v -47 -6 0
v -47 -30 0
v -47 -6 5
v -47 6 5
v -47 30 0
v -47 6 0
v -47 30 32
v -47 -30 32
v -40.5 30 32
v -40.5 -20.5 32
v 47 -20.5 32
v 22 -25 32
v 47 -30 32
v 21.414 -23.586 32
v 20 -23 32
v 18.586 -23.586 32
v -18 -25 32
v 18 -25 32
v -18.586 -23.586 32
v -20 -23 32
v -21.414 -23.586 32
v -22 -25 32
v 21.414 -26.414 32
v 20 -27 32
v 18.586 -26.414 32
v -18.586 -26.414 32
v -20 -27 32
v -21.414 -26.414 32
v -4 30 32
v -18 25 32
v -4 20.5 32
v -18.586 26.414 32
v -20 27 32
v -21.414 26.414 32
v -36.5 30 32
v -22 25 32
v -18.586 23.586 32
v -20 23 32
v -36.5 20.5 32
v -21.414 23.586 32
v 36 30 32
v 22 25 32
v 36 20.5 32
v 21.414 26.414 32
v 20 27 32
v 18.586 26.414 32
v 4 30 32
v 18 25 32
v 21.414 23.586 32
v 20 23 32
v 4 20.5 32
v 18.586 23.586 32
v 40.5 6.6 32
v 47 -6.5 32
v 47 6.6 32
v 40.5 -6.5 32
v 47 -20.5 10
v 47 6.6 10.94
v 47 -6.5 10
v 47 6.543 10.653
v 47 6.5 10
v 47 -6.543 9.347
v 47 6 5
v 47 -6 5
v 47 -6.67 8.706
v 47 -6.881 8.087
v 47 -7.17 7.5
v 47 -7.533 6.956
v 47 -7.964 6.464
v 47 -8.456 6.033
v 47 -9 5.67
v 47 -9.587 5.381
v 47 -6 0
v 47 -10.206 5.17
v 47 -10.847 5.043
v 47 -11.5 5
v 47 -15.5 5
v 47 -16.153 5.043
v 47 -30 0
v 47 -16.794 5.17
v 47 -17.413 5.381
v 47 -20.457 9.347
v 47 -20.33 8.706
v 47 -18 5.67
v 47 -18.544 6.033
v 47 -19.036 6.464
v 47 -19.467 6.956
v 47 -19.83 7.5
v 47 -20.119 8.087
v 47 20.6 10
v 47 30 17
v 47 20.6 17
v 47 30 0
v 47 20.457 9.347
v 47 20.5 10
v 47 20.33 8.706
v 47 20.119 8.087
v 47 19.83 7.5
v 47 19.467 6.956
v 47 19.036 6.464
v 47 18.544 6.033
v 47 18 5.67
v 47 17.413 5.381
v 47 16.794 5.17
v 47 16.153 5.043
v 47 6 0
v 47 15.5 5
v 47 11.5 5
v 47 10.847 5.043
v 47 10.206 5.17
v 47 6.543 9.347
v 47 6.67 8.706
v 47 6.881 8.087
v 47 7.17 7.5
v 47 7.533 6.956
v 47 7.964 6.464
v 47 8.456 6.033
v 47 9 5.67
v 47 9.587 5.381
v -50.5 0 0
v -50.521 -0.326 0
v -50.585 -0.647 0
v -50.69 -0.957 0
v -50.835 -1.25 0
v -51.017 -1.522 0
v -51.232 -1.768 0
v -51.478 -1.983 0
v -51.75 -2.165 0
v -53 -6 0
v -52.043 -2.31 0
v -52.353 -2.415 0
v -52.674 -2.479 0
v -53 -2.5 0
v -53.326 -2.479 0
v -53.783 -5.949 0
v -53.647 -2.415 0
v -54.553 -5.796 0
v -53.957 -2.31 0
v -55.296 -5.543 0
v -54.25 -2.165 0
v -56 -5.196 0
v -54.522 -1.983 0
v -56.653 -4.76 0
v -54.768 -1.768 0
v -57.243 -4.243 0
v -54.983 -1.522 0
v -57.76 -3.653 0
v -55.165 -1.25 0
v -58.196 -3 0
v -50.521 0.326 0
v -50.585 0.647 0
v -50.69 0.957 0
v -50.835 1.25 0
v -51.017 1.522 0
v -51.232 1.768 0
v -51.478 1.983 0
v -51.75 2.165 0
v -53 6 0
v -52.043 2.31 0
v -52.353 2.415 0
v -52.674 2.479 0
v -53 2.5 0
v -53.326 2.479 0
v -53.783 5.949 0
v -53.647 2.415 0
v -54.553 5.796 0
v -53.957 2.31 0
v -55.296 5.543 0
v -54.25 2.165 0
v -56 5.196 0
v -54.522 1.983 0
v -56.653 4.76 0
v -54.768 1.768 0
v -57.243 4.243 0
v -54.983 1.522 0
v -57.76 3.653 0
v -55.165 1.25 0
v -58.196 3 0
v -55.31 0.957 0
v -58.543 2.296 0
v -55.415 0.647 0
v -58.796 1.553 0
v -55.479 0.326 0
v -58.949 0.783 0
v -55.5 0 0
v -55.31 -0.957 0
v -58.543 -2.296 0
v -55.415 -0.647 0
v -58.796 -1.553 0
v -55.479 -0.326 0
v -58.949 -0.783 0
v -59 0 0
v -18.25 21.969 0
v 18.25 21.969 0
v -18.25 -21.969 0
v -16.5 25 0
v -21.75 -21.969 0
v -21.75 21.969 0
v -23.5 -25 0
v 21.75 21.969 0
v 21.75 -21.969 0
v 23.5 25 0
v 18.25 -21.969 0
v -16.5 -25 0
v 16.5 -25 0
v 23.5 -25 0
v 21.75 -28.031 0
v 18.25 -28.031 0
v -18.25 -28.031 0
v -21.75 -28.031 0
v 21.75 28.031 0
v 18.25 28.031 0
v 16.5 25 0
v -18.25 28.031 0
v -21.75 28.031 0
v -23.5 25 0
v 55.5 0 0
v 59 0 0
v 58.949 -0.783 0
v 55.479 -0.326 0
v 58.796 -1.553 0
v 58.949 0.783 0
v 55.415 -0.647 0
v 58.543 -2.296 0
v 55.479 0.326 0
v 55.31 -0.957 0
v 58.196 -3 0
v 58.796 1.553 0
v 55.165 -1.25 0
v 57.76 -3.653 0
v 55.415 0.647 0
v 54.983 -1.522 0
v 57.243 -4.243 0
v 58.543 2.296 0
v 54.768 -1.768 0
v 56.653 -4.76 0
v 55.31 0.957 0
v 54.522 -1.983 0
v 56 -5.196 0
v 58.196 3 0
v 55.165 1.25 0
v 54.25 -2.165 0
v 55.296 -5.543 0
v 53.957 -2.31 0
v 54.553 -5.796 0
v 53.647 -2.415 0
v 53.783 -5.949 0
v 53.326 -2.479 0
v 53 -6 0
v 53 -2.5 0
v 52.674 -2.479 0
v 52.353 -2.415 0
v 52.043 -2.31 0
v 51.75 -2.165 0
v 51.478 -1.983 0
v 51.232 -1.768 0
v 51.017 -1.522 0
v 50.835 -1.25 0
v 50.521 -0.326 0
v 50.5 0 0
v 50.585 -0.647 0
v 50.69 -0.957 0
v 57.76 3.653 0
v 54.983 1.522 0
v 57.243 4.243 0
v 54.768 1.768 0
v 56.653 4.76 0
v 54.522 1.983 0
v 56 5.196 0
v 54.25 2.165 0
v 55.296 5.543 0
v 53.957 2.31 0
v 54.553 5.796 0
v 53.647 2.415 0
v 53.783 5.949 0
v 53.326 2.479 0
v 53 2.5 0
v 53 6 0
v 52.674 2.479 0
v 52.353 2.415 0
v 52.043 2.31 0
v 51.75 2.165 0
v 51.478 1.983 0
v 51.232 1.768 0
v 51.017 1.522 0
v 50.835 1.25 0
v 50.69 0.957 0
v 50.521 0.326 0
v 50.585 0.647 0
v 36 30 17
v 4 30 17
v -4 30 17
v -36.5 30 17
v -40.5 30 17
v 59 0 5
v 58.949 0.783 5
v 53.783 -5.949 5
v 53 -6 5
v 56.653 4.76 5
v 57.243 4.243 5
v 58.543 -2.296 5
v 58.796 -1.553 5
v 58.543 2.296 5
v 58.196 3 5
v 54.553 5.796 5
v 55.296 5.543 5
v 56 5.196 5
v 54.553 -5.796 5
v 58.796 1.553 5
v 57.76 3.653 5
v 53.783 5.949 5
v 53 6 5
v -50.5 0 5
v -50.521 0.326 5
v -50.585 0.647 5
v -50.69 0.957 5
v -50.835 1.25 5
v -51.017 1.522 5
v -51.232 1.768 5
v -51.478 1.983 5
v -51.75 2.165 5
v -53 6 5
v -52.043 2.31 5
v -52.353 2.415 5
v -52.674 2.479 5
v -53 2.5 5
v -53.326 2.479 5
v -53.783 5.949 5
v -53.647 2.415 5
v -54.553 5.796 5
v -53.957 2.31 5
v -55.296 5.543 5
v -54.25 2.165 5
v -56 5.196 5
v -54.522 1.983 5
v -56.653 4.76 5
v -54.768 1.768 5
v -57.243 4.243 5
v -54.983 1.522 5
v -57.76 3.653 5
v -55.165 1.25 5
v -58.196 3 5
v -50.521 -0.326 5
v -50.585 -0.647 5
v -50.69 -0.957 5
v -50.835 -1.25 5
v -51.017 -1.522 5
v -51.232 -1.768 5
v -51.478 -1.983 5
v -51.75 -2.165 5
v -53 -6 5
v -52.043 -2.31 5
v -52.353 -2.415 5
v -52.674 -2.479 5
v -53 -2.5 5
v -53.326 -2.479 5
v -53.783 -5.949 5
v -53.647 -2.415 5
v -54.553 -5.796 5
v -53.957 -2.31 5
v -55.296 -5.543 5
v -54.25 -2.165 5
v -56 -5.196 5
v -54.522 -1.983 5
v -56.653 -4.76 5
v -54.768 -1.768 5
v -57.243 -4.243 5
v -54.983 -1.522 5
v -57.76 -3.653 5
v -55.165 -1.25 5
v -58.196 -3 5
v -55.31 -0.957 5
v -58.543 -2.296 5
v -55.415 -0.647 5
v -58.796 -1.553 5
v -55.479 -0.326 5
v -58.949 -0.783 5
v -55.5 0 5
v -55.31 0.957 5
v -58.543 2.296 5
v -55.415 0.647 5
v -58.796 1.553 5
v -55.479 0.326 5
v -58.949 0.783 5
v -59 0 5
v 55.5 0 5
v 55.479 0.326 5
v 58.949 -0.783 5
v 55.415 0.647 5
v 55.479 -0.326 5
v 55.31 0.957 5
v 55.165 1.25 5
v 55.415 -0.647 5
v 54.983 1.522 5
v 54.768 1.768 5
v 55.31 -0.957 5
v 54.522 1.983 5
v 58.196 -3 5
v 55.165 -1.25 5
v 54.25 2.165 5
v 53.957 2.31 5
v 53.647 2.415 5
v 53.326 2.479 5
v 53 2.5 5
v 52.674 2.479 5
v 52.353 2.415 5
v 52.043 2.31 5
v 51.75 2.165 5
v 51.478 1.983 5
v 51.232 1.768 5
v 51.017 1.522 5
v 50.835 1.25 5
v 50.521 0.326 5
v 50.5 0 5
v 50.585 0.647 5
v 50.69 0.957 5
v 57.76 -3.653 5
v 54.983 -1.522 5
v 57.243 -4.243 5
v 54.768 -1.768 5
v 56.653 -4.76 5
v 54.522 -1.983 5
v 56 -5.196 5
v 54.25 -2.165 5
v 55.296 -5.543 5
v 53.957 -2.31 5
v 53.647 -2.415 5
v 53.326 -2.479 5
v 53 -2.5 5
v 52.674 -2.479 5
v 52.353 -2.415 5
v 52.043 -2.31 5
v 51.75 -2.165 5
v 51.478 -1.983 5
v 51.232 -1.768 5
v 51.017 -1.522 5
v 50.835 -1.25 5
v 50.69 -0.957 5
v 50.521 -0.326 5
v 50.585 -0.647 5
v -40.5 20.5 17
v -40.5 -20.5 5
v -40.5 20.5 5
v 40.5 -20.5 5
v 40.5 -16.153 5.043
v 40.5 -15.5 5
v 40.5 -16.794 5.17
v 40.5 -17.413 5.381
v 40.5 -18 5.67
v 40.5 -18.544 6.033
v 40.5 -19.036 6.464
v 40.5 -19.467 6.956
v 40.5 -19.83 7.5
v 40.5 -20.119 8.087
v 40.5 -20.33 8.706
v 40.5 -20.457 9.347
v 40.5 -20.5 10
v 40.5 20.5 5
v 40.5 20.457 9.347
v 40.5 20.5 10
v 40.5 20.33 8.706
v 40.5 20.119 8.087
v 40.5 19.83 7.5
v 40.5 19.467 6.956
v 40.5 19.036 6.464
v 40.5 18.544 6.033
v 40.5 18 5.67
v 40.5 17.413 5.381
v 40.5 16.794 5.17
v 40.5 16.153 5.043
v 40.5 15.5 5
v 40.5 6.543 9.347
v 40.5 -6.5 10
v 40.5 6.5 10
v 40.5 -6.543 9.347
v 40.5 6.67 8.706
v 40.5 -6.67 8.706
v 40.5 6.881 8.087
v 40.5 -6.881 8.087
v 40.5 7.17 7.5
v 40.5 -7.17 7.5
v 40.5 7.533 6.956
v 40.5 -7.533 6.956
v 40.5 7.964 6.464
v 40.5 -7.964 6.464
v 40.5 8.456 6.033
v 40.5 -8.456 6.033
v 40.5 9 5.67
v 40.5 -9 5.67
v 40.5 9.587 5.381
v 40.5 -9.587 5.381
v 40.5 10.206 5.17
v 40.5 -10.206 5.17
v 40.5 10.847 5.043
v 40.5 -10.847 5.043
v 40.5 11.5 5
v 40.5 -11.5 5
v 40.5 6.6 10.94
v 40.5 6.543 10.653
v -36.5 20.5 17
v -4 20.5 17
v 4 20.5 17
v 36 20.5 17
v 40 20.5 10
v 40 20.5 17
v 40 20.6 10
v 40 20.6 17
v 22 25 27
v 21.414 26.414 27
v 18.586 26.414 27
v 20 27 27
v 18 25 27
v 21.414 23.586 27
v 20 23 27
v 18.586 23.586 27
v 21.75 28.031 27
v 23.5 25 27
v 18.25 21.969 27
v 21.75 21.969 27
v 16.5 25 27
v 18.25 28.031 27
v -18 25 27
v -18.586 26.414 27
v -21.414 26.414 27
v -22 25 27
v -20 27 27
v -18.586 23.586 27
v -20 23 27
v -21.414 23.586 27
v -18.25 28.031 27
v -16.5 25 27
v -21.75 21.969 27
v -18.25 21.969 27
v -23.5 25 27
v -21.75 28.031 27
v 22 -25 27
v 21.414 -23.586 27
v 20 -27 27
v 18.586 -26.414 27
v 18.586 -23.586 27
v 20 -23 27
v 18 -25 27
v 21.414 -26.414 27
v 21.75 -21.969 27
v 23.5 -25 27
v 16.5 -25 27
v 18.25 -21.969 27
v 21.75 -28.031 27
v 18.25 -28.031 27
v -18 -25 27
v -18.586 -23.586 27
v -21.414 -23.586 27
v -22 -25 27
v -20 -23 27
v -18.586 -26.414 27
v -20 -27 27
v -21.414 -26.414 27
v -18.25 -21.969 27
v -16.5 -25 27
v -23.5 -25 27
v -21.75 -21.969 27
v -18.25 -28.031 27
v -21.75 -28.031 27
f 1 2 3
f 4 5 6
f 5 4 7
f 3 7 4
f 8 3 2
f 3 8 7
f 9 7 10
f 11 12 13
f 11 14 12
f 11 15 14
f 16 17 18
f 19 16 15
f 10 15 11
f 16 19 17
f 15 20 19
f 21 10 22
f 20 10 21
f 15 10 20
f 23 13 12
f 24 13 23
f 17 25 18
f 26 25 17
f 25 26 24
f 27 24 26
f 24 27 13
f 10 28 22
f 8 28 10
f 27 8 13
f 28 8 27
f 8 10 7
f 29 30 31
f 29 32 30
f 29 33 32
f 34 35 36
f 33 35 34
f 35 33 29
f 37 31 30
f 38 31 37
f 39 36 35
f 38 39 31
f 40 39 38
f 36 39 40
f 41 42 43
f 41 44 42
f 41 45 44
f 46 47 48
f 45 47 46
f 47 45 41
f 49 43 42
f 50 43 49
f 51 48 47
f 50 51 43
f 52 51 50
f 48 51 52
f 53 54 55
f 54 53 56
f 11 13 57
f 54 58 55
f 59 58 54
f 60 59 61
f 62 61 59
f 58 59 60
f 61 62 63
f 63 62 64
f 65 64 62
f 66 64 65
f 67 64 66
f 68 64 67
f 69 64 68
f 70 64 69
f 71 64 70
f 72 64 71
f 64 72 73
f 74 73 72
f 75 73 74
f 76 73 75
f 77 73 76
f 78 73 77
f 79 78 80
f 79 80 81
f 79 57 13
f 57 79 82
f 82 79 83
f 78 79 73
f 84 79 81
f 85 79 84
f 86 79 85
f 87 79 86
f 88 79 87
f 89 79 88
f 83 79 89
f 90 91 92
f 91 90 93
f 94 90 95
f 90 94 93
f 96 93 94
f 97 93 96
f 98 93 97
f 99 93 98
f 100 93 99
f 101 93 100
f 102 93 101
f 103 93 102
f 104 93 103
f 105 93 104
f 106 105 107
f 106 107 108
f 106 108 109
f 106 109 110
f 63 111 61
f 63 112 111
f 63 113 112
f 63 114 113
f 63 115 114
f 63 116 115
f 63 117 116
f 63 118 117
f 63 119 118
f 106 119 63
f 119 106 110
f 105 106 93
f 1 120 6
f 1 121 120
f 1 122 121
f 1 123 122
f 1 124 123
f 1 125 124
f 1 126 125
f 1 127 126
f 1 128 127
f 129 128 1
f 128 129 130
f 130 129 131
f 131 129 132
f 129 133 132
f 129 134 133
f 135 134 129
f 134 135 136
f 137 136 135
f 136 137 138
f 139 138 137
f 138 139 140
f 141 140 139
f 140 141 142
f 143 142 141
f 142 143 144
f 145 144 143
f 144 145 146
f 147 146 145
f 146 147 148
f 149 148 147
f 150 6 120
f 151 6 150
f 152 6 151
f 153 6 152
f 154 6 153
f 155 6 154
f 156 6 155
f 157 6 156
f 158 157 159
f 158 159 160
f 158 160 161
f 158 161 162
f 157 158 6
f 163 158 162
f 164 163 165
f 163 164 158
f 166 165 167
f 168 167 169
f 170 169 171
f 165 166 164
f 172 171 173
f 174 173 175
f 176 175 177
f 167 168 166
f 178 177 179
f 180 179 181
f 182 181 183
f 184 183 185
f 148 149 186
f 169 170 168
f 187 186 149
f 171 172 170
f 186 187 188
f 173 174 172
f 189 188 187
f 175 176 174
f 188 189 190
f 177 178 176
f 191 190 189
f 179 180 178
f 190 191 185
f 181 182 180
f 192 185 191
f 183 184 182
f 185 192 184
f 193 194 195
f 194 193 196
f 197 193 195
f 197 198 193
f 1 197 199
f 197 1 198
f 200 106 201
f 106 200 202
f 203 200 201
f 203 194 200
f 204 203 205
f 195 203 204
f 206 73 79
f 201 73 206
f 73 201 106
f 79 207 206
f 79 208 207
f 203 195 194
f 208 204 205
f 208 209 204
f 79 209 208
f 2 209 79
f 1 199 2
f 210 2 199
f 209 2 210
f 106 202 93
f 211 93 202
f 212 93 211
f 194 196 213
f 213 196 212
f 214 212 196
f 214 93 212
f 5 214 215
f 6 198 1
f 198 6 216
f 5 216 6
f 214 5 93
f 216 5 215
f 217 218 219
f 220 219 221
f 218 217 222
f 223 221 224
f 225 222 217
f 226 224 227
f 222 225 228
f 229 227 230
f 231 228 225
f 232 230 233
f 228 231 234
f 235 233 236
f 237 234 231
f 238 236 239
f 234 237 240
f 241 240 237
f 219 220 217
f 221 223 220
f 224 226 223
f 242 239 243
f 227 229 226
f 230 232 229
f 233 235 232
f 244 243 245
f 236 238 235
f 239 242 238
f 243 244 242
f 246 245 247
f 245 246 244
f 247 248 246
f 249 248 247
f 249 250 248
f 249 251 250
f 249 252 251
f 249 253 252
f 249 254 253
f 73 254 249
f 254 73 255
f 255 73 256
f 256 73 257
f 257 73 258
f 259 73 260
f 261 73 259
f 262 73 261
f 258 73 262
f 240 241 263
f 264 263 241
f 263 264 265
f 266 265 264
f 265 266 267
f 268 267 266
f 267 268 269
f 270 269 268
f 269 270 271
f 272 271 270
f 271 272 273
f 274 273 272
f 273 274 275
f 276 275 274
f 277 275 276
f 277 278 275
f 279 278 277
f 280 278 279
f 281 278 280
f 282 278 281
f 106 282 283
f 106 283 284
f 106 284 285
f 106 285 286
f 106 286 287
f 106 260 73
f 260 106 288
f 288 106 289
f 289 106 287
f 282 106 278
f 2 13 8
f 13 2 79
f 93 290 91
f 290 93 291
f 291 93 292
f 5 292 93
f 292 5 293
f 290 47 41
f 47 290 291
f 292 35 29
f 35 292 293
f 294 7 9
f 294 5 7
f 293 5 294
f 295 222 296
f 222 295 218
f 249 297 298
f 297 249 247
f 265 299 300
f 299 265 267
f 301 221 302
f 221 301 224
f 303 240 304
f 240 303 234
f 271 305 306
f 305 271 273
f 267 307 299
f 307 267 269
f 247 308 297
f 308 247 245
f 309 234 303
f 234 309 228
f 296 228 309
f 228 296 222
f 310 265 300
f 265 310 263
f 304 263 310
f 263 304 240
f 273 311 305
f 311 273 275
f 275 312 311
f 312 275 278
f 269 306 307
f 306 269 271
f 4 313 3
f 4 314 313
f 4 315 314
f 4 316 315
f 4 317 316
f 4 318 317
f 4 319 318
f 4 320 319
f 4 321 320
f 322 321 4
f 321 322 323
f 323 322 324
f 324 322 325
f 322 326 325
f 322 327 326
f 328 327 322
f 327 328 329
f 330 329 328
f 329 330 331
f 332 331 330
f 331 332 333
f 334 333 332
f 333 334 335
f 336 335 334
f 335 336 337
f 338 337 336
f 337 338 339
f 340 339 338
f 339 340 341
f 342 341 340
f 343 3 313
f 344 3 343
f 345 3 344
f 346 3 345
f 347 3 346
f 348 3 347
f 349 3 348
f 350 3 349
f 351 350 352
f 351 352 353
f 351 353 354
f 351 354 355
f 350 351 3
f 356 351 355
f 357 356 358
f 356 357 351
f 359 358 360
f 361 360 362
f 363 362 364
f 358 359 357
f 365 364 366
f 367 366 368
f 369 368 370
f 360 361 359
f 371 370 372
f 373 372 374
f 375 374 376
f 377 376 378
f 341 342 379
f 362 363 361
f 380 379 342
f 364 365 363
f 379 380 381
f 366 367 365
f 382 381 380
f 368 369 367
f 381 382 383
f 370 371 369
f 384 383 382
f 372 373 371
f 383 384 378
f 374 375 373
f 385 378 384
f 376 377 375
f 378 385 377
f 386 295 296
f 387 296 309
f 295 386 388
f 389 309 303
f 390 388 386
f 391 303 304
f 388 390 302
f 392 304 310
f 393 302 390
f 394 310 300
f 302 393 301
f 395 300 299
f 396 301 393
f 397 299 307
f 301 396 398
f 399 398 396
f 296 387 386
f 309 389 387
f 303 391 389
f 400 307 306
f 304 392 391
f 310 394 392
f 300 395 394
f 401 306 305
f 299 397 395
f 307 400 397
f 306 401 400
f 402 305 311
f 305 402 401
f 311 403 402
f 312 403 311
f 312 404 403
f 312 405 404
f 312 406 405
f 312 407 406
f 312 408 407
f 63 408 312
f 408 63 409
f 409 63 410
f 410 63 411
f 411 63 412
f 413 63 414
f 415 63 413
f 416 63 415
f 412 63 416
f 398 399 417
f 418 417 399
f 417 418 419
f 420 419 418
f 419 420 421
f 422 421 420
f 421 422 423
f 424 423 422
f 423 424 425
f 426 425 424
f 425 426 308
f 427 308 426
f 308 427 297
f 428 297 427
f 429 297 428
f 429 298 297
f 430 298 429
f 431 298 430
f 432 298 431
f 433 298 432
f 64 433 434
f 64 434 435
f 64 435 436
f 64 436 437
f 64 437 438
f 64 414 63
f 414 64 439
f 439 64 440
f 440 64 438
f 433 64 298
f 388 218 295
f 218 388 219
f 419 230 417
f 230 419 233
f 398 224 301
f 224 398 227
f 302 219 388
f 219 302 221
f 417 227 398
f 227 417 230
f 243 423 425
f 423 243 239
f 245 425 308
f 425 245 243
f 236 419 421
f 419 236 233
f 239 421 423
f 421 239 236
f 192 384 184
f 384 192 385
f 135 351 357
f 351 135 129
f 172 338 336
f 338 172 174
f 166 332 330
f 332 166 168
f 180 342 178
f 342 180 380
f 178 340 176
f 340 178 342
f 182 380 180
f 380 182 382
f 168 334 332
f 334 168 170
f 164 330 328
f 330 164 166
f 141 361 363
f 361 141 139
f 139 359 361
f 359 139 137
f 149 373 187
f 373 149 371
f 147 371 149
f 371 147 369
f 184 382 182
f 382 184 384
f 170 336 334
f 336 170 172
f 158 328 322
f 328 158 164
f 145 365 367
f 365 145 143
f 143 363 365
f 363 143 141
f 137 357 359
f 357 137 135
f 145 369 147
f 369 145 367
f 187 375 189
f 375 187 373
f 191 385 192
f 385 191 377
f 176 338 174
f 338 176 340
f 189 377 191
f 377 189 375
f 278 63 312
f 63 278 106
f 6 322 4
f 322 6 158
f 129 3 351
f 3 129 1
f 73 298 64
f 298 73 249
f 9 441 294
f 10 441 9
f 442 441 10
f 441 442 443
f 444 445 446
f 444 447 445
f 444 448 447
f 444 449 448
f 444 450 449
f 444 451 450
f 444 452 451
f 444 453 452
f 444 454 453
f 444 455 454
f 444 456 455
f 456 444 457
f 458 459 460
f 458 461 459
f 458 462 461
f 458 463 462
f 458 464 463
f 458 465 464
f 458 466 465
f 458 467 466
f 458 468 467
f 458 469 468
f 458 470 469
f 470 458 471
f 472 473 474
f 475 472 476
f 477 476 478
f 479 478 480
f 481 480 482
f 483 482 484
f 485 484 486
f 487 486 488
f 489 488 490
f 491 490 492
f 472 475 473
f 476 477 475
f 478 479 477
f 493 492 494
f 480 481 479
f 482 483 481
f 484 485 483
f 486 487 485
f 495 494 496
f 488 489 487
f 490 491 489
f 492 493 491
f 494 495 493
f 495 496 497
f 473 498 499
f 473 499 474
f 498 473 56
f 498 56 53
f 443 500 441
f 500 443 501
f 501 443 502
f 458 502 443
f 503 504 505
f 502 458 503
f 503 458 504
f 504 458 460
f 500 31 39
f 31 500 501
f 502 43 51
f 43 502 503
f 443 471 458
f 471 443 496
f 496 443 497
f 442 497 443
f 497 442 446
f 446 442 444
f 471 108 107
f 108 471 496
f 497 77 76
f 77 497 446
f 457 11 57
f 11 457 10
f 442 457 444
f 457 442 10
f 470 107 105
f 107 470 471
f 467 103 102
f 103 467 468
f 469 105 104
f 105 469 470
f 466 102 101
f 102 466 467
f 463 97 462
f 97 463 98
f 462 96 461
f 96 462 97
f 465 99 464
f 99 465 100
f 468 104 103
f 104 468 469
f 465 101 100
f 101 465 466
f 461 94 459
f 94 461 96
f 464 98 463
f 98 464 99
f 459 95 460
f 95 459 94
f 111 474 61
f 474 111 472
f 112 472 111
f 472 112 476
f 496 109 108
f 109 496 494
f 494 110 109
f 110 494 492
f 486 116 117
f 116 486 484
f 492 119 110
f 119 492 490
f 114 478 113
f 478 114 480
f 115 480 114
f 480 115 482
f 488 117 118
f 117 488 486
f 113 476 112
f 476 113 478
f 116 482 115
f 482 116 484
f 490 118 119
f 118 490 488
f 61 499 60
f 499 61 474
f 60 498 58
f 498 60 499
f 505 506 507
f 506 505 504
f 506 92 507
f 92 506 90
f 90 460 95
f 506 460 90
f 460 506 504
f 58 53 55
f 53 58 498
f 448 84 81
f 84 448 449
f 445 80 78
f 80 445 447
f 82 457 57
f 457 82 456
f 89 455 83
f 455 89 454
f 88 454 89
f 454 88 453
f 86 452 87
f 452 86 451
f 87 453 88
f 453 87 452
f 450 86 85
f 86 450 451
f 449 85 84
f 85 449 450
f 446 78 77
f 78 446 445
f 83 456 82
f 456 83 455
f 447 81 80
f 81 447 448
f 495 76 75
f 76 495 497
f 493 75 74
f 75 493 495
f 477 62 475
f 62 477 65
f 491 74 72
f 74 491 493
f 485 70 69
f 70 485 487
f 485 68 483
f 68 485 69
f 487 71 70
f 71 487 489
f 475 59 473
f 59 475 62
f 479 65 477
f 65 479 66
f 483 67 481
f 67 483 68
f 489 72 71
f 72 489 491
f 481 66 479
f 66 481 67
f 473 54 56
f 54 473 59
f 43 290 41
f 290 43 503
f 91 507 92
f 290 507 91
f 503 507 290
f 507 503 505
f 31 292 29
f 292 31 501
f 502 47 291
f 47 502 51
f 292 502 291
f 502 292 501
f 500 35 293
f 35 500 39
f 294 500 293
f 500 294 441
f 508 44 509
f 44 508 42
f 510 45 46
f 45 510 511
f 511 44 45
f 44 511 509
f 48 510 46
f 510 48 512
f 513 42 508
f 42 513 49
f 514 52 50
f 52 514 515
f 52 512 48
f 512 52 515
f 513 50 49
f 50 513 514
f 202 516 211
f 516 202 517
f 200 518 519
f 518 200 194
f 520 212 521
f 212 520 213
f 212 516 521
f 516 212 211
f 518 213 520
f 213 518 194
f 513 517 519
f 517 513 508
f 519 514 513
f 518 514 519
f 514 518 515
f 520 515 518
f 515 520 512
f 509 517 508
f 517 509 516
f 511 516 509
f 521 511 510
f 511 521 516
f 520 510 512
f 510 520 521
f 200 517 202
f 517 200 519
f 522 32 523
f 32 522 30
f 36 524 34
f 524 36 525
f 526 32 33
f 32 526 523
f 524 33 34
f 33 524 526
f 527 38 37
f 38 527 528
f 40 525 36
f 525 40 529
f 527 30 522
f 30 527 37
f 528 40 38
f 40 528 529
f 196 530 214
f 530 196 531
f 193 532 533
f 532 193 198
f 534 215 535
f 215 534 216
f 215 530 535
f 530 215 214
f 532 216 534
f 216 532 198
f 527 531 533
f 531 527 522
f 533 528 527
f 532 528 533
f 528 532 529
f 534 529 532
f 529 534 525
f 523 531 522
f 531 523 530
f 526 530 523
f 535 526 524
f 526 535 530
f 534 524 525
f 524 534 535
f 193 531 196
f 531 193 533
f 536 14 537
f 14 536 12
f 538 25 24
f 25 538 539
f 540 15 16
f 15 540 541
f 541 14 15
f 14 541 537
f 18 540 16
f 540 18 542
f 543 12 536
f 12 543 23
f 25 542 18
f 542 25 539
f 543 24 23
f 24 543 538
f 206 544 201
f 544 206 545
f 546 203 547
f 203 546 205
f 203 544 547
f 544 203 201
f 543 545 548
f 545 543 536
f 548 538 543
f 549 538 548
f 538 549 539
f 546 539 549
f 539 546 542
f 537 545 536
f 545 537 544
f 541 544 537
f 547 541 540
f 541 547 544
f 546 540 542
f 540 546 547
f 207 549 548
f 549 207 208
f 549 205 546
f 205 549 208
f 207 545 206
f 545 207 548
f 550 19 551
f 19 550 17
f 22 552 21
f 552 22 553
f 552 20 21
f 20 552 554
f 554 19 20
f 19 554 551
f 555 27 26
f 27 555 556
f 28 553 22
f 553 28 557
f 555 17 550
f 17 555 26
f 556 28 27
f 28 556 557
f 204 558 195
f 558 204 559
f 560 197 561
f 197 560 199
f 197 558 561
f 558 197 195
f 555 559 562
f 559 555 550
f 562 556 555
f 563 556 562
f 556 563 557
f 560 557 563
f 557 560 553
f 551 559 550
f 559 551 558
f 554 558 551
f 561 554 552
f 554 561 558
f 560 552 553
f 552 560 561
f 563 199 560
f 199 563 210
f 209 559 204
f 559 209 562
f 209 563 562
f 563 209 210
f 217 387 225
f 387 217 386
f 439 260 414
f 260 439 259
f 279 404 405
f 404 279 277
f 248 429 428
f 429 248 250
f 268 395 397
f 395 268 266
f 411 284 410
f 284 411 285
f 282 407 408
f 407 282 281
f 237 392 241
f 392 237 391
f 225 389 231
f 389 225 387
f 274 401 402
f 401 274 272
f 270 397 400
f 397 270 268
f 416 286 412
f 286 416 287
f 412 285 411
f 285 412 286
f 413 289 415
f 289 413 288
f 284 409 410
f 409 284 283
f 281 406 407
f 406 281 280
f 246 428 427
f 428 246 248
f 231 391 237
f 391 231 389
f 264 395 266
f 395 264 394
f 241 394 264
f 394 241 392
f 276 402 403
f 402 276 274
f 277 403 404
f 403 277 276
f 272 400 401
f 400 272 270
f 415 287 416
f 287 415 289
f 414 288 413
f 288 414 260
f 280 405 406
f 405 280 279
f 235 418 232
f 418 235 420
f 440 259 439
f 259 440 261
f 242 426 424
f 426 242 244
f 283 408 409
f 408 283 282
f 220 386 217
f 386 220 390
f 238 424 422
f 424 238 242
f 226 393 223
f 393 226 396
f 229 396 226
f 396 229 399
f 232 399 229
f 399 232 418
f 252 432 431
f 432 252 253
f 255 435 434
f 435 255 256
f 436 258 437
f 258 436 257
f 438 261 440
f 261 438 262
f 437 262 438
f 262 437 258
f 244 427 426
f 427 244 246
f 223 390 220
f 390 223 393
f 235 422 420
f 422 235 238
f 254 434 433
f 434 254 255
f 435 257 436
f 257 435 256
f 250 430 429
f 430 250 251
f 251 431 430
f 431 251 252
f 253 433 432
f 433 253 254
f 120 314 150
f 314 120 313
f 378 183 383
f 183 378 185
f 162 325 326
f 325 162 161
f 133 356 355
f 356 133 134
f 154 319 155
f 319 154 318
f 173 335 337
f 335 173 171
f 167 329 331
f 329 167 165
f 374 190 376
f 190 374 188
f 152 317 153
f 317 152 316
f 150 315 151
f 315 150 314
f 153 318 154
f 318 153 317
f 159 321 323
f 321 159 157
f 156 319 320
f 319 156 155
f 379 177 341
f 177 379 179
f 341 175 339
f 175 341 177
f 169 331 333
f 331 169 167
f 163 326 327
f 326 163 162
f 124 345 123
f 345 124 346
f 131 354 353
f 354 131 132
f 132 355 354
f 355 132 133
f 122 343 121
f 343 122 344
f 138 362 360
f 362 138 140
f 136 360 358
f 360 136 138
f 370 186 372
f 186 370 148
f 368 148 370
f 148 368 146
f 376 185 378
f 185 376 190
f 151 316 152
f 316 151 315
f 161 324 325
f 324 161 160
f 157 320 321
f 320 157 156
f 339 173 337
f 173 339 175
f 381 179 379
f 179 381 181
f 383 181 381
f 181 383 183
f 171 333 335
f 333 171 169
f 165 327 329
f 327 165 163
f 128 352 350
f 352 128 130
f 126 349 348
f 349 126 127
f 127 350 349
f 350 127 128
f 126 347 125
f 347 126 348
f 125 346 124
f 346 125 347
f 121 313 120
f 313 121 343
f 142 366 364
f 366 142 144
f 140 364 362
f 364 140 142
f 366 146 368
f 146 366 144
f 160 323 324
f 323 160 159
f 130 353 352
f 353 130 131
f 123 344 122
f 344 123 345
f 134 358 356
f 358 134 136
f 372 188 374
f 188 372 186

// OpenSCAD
//###############################################################################
//#                                                                             #
//###############################################################################
//#    Copyright 2020 Dirk Heisswolf                                            #
//#    This file is part of the DIY Laser Bed project.                          #
//#                                                                             #
//#    This project is free software: you can redistribute it and/or modify     #
//#    it under the terms of the GNU General Public License as published by     #
//#    the Free Software Foundation, either version 3 of the License, or        #
//#    (at your option) any later version.                                      #
//#                                                                             #
//#    This project is distributed in the hope that it will be useful,          #
//#    but WITHOUT ANY WARRANTY; without even the implied warranty of           #
//#    MERCHANTABILITY or FITNESS FOR A PARTICULAR PURPOSE.  See the            #
//#    GNU General Public License for more details.                             #
//#                                                                             #
//#    You should have received a copy of the GNU General Public License        #
//#    along with this project.  If not, see <http://www.gnu.org/licenses/>.    #
//#                                                                             #
//###############################################################################
//# Description:                                                                #
//#   This is a cover to block the UV light at the openings of the tub.         #
//#                                                                             #
//###############################################################################
//# Version History:                                                            #
//#   February 27, 2020                                                         #
//#      - Initial release                                                      #
//#                                                                             #
//###############################################################################
//Parameters
$d_hole      = 18.4;                  //diameter 
$d_cable     =  9;                  //diameter of the cable
$w_cable     = 18;                  //width of the cable slot
$fn          = 48;

module chiller() {
    //Body
    difference() {
        color("Green") union() {
            //Shell 
            translate([0,0,16])   cube([94,60,32],true);
            //Mounting screws
            translate([53,0,0])  cylinder(5,d=12);
            translate([-53,0,0]) cylinder(5,d=12);
            translate([0,0,2.5]) cube([106,12,5],true);
          
         }
        color("Red") union() {
          //Cooling blocks  
          translate([0,0,5]) { 
            translate([0,0,15])                         cube([81,41,30],true);

            translate([40,15.5,5])  rotate([0,90,0]) cylinder(20,d=10);
            translate([40,11.5,5])  rotate([0,90,0]) cylinder(20,d=10);
            translate([40,11.5,0])                      cube([20,4,10]);
            translate([40,6.6,5])                       cube([20,14,25]);
   
            translate([40,-15.5,5])  rotate([0,90,0]) cylinder(20,d=10);
            translate([40,-11.5,5])  rotate([0,90,0]) cylinder(20,d=10);
            translate([40,-15.5,0])                      cube([20,4,10]);
            translate([40,-20.5,5])                       cube([20,14,25]);

            translate([36,20,12])                       cube([24,20,18]);
            translate([-4,20,12])                       cube([8,20,18]);
            translate([-40.5,20,12])                    cube([4,20,18]);              
          }
          //Cooler screws
          translate ([20,25,-1])                        cylinder(34,d=4,$fn=8);
          translate ([20,25,-1])                        cylinder(28,d=7,$fn=6);
         
          translate ([-20,25,-1])                       cylinder(34,d=4,$fn=8);
          translate ([-20,25,-1])                       cylinder(28,d=7,$fn=6);
         
          translate ([20,-25,-1])                       cylinder(34,d=4,$fn=8);
          translate ([20,-25,-1])                       cylinder(28,d=7,$fn=6);
         
          translate ([-20,-25,-1])                      cylinder(34,d=4,$fn=8);
          translate ([-20,-25,-1])                      cylinder(28,d=7,$fn=6);
          //Mounting screws
          translate([53,0,-1])                          cylinder(7,d=5);
          translate([-53,0,-1])                         cylinder(7,d=5);
         
          
        }
    }
}

//if ($preview) {

   chiller();
//}
